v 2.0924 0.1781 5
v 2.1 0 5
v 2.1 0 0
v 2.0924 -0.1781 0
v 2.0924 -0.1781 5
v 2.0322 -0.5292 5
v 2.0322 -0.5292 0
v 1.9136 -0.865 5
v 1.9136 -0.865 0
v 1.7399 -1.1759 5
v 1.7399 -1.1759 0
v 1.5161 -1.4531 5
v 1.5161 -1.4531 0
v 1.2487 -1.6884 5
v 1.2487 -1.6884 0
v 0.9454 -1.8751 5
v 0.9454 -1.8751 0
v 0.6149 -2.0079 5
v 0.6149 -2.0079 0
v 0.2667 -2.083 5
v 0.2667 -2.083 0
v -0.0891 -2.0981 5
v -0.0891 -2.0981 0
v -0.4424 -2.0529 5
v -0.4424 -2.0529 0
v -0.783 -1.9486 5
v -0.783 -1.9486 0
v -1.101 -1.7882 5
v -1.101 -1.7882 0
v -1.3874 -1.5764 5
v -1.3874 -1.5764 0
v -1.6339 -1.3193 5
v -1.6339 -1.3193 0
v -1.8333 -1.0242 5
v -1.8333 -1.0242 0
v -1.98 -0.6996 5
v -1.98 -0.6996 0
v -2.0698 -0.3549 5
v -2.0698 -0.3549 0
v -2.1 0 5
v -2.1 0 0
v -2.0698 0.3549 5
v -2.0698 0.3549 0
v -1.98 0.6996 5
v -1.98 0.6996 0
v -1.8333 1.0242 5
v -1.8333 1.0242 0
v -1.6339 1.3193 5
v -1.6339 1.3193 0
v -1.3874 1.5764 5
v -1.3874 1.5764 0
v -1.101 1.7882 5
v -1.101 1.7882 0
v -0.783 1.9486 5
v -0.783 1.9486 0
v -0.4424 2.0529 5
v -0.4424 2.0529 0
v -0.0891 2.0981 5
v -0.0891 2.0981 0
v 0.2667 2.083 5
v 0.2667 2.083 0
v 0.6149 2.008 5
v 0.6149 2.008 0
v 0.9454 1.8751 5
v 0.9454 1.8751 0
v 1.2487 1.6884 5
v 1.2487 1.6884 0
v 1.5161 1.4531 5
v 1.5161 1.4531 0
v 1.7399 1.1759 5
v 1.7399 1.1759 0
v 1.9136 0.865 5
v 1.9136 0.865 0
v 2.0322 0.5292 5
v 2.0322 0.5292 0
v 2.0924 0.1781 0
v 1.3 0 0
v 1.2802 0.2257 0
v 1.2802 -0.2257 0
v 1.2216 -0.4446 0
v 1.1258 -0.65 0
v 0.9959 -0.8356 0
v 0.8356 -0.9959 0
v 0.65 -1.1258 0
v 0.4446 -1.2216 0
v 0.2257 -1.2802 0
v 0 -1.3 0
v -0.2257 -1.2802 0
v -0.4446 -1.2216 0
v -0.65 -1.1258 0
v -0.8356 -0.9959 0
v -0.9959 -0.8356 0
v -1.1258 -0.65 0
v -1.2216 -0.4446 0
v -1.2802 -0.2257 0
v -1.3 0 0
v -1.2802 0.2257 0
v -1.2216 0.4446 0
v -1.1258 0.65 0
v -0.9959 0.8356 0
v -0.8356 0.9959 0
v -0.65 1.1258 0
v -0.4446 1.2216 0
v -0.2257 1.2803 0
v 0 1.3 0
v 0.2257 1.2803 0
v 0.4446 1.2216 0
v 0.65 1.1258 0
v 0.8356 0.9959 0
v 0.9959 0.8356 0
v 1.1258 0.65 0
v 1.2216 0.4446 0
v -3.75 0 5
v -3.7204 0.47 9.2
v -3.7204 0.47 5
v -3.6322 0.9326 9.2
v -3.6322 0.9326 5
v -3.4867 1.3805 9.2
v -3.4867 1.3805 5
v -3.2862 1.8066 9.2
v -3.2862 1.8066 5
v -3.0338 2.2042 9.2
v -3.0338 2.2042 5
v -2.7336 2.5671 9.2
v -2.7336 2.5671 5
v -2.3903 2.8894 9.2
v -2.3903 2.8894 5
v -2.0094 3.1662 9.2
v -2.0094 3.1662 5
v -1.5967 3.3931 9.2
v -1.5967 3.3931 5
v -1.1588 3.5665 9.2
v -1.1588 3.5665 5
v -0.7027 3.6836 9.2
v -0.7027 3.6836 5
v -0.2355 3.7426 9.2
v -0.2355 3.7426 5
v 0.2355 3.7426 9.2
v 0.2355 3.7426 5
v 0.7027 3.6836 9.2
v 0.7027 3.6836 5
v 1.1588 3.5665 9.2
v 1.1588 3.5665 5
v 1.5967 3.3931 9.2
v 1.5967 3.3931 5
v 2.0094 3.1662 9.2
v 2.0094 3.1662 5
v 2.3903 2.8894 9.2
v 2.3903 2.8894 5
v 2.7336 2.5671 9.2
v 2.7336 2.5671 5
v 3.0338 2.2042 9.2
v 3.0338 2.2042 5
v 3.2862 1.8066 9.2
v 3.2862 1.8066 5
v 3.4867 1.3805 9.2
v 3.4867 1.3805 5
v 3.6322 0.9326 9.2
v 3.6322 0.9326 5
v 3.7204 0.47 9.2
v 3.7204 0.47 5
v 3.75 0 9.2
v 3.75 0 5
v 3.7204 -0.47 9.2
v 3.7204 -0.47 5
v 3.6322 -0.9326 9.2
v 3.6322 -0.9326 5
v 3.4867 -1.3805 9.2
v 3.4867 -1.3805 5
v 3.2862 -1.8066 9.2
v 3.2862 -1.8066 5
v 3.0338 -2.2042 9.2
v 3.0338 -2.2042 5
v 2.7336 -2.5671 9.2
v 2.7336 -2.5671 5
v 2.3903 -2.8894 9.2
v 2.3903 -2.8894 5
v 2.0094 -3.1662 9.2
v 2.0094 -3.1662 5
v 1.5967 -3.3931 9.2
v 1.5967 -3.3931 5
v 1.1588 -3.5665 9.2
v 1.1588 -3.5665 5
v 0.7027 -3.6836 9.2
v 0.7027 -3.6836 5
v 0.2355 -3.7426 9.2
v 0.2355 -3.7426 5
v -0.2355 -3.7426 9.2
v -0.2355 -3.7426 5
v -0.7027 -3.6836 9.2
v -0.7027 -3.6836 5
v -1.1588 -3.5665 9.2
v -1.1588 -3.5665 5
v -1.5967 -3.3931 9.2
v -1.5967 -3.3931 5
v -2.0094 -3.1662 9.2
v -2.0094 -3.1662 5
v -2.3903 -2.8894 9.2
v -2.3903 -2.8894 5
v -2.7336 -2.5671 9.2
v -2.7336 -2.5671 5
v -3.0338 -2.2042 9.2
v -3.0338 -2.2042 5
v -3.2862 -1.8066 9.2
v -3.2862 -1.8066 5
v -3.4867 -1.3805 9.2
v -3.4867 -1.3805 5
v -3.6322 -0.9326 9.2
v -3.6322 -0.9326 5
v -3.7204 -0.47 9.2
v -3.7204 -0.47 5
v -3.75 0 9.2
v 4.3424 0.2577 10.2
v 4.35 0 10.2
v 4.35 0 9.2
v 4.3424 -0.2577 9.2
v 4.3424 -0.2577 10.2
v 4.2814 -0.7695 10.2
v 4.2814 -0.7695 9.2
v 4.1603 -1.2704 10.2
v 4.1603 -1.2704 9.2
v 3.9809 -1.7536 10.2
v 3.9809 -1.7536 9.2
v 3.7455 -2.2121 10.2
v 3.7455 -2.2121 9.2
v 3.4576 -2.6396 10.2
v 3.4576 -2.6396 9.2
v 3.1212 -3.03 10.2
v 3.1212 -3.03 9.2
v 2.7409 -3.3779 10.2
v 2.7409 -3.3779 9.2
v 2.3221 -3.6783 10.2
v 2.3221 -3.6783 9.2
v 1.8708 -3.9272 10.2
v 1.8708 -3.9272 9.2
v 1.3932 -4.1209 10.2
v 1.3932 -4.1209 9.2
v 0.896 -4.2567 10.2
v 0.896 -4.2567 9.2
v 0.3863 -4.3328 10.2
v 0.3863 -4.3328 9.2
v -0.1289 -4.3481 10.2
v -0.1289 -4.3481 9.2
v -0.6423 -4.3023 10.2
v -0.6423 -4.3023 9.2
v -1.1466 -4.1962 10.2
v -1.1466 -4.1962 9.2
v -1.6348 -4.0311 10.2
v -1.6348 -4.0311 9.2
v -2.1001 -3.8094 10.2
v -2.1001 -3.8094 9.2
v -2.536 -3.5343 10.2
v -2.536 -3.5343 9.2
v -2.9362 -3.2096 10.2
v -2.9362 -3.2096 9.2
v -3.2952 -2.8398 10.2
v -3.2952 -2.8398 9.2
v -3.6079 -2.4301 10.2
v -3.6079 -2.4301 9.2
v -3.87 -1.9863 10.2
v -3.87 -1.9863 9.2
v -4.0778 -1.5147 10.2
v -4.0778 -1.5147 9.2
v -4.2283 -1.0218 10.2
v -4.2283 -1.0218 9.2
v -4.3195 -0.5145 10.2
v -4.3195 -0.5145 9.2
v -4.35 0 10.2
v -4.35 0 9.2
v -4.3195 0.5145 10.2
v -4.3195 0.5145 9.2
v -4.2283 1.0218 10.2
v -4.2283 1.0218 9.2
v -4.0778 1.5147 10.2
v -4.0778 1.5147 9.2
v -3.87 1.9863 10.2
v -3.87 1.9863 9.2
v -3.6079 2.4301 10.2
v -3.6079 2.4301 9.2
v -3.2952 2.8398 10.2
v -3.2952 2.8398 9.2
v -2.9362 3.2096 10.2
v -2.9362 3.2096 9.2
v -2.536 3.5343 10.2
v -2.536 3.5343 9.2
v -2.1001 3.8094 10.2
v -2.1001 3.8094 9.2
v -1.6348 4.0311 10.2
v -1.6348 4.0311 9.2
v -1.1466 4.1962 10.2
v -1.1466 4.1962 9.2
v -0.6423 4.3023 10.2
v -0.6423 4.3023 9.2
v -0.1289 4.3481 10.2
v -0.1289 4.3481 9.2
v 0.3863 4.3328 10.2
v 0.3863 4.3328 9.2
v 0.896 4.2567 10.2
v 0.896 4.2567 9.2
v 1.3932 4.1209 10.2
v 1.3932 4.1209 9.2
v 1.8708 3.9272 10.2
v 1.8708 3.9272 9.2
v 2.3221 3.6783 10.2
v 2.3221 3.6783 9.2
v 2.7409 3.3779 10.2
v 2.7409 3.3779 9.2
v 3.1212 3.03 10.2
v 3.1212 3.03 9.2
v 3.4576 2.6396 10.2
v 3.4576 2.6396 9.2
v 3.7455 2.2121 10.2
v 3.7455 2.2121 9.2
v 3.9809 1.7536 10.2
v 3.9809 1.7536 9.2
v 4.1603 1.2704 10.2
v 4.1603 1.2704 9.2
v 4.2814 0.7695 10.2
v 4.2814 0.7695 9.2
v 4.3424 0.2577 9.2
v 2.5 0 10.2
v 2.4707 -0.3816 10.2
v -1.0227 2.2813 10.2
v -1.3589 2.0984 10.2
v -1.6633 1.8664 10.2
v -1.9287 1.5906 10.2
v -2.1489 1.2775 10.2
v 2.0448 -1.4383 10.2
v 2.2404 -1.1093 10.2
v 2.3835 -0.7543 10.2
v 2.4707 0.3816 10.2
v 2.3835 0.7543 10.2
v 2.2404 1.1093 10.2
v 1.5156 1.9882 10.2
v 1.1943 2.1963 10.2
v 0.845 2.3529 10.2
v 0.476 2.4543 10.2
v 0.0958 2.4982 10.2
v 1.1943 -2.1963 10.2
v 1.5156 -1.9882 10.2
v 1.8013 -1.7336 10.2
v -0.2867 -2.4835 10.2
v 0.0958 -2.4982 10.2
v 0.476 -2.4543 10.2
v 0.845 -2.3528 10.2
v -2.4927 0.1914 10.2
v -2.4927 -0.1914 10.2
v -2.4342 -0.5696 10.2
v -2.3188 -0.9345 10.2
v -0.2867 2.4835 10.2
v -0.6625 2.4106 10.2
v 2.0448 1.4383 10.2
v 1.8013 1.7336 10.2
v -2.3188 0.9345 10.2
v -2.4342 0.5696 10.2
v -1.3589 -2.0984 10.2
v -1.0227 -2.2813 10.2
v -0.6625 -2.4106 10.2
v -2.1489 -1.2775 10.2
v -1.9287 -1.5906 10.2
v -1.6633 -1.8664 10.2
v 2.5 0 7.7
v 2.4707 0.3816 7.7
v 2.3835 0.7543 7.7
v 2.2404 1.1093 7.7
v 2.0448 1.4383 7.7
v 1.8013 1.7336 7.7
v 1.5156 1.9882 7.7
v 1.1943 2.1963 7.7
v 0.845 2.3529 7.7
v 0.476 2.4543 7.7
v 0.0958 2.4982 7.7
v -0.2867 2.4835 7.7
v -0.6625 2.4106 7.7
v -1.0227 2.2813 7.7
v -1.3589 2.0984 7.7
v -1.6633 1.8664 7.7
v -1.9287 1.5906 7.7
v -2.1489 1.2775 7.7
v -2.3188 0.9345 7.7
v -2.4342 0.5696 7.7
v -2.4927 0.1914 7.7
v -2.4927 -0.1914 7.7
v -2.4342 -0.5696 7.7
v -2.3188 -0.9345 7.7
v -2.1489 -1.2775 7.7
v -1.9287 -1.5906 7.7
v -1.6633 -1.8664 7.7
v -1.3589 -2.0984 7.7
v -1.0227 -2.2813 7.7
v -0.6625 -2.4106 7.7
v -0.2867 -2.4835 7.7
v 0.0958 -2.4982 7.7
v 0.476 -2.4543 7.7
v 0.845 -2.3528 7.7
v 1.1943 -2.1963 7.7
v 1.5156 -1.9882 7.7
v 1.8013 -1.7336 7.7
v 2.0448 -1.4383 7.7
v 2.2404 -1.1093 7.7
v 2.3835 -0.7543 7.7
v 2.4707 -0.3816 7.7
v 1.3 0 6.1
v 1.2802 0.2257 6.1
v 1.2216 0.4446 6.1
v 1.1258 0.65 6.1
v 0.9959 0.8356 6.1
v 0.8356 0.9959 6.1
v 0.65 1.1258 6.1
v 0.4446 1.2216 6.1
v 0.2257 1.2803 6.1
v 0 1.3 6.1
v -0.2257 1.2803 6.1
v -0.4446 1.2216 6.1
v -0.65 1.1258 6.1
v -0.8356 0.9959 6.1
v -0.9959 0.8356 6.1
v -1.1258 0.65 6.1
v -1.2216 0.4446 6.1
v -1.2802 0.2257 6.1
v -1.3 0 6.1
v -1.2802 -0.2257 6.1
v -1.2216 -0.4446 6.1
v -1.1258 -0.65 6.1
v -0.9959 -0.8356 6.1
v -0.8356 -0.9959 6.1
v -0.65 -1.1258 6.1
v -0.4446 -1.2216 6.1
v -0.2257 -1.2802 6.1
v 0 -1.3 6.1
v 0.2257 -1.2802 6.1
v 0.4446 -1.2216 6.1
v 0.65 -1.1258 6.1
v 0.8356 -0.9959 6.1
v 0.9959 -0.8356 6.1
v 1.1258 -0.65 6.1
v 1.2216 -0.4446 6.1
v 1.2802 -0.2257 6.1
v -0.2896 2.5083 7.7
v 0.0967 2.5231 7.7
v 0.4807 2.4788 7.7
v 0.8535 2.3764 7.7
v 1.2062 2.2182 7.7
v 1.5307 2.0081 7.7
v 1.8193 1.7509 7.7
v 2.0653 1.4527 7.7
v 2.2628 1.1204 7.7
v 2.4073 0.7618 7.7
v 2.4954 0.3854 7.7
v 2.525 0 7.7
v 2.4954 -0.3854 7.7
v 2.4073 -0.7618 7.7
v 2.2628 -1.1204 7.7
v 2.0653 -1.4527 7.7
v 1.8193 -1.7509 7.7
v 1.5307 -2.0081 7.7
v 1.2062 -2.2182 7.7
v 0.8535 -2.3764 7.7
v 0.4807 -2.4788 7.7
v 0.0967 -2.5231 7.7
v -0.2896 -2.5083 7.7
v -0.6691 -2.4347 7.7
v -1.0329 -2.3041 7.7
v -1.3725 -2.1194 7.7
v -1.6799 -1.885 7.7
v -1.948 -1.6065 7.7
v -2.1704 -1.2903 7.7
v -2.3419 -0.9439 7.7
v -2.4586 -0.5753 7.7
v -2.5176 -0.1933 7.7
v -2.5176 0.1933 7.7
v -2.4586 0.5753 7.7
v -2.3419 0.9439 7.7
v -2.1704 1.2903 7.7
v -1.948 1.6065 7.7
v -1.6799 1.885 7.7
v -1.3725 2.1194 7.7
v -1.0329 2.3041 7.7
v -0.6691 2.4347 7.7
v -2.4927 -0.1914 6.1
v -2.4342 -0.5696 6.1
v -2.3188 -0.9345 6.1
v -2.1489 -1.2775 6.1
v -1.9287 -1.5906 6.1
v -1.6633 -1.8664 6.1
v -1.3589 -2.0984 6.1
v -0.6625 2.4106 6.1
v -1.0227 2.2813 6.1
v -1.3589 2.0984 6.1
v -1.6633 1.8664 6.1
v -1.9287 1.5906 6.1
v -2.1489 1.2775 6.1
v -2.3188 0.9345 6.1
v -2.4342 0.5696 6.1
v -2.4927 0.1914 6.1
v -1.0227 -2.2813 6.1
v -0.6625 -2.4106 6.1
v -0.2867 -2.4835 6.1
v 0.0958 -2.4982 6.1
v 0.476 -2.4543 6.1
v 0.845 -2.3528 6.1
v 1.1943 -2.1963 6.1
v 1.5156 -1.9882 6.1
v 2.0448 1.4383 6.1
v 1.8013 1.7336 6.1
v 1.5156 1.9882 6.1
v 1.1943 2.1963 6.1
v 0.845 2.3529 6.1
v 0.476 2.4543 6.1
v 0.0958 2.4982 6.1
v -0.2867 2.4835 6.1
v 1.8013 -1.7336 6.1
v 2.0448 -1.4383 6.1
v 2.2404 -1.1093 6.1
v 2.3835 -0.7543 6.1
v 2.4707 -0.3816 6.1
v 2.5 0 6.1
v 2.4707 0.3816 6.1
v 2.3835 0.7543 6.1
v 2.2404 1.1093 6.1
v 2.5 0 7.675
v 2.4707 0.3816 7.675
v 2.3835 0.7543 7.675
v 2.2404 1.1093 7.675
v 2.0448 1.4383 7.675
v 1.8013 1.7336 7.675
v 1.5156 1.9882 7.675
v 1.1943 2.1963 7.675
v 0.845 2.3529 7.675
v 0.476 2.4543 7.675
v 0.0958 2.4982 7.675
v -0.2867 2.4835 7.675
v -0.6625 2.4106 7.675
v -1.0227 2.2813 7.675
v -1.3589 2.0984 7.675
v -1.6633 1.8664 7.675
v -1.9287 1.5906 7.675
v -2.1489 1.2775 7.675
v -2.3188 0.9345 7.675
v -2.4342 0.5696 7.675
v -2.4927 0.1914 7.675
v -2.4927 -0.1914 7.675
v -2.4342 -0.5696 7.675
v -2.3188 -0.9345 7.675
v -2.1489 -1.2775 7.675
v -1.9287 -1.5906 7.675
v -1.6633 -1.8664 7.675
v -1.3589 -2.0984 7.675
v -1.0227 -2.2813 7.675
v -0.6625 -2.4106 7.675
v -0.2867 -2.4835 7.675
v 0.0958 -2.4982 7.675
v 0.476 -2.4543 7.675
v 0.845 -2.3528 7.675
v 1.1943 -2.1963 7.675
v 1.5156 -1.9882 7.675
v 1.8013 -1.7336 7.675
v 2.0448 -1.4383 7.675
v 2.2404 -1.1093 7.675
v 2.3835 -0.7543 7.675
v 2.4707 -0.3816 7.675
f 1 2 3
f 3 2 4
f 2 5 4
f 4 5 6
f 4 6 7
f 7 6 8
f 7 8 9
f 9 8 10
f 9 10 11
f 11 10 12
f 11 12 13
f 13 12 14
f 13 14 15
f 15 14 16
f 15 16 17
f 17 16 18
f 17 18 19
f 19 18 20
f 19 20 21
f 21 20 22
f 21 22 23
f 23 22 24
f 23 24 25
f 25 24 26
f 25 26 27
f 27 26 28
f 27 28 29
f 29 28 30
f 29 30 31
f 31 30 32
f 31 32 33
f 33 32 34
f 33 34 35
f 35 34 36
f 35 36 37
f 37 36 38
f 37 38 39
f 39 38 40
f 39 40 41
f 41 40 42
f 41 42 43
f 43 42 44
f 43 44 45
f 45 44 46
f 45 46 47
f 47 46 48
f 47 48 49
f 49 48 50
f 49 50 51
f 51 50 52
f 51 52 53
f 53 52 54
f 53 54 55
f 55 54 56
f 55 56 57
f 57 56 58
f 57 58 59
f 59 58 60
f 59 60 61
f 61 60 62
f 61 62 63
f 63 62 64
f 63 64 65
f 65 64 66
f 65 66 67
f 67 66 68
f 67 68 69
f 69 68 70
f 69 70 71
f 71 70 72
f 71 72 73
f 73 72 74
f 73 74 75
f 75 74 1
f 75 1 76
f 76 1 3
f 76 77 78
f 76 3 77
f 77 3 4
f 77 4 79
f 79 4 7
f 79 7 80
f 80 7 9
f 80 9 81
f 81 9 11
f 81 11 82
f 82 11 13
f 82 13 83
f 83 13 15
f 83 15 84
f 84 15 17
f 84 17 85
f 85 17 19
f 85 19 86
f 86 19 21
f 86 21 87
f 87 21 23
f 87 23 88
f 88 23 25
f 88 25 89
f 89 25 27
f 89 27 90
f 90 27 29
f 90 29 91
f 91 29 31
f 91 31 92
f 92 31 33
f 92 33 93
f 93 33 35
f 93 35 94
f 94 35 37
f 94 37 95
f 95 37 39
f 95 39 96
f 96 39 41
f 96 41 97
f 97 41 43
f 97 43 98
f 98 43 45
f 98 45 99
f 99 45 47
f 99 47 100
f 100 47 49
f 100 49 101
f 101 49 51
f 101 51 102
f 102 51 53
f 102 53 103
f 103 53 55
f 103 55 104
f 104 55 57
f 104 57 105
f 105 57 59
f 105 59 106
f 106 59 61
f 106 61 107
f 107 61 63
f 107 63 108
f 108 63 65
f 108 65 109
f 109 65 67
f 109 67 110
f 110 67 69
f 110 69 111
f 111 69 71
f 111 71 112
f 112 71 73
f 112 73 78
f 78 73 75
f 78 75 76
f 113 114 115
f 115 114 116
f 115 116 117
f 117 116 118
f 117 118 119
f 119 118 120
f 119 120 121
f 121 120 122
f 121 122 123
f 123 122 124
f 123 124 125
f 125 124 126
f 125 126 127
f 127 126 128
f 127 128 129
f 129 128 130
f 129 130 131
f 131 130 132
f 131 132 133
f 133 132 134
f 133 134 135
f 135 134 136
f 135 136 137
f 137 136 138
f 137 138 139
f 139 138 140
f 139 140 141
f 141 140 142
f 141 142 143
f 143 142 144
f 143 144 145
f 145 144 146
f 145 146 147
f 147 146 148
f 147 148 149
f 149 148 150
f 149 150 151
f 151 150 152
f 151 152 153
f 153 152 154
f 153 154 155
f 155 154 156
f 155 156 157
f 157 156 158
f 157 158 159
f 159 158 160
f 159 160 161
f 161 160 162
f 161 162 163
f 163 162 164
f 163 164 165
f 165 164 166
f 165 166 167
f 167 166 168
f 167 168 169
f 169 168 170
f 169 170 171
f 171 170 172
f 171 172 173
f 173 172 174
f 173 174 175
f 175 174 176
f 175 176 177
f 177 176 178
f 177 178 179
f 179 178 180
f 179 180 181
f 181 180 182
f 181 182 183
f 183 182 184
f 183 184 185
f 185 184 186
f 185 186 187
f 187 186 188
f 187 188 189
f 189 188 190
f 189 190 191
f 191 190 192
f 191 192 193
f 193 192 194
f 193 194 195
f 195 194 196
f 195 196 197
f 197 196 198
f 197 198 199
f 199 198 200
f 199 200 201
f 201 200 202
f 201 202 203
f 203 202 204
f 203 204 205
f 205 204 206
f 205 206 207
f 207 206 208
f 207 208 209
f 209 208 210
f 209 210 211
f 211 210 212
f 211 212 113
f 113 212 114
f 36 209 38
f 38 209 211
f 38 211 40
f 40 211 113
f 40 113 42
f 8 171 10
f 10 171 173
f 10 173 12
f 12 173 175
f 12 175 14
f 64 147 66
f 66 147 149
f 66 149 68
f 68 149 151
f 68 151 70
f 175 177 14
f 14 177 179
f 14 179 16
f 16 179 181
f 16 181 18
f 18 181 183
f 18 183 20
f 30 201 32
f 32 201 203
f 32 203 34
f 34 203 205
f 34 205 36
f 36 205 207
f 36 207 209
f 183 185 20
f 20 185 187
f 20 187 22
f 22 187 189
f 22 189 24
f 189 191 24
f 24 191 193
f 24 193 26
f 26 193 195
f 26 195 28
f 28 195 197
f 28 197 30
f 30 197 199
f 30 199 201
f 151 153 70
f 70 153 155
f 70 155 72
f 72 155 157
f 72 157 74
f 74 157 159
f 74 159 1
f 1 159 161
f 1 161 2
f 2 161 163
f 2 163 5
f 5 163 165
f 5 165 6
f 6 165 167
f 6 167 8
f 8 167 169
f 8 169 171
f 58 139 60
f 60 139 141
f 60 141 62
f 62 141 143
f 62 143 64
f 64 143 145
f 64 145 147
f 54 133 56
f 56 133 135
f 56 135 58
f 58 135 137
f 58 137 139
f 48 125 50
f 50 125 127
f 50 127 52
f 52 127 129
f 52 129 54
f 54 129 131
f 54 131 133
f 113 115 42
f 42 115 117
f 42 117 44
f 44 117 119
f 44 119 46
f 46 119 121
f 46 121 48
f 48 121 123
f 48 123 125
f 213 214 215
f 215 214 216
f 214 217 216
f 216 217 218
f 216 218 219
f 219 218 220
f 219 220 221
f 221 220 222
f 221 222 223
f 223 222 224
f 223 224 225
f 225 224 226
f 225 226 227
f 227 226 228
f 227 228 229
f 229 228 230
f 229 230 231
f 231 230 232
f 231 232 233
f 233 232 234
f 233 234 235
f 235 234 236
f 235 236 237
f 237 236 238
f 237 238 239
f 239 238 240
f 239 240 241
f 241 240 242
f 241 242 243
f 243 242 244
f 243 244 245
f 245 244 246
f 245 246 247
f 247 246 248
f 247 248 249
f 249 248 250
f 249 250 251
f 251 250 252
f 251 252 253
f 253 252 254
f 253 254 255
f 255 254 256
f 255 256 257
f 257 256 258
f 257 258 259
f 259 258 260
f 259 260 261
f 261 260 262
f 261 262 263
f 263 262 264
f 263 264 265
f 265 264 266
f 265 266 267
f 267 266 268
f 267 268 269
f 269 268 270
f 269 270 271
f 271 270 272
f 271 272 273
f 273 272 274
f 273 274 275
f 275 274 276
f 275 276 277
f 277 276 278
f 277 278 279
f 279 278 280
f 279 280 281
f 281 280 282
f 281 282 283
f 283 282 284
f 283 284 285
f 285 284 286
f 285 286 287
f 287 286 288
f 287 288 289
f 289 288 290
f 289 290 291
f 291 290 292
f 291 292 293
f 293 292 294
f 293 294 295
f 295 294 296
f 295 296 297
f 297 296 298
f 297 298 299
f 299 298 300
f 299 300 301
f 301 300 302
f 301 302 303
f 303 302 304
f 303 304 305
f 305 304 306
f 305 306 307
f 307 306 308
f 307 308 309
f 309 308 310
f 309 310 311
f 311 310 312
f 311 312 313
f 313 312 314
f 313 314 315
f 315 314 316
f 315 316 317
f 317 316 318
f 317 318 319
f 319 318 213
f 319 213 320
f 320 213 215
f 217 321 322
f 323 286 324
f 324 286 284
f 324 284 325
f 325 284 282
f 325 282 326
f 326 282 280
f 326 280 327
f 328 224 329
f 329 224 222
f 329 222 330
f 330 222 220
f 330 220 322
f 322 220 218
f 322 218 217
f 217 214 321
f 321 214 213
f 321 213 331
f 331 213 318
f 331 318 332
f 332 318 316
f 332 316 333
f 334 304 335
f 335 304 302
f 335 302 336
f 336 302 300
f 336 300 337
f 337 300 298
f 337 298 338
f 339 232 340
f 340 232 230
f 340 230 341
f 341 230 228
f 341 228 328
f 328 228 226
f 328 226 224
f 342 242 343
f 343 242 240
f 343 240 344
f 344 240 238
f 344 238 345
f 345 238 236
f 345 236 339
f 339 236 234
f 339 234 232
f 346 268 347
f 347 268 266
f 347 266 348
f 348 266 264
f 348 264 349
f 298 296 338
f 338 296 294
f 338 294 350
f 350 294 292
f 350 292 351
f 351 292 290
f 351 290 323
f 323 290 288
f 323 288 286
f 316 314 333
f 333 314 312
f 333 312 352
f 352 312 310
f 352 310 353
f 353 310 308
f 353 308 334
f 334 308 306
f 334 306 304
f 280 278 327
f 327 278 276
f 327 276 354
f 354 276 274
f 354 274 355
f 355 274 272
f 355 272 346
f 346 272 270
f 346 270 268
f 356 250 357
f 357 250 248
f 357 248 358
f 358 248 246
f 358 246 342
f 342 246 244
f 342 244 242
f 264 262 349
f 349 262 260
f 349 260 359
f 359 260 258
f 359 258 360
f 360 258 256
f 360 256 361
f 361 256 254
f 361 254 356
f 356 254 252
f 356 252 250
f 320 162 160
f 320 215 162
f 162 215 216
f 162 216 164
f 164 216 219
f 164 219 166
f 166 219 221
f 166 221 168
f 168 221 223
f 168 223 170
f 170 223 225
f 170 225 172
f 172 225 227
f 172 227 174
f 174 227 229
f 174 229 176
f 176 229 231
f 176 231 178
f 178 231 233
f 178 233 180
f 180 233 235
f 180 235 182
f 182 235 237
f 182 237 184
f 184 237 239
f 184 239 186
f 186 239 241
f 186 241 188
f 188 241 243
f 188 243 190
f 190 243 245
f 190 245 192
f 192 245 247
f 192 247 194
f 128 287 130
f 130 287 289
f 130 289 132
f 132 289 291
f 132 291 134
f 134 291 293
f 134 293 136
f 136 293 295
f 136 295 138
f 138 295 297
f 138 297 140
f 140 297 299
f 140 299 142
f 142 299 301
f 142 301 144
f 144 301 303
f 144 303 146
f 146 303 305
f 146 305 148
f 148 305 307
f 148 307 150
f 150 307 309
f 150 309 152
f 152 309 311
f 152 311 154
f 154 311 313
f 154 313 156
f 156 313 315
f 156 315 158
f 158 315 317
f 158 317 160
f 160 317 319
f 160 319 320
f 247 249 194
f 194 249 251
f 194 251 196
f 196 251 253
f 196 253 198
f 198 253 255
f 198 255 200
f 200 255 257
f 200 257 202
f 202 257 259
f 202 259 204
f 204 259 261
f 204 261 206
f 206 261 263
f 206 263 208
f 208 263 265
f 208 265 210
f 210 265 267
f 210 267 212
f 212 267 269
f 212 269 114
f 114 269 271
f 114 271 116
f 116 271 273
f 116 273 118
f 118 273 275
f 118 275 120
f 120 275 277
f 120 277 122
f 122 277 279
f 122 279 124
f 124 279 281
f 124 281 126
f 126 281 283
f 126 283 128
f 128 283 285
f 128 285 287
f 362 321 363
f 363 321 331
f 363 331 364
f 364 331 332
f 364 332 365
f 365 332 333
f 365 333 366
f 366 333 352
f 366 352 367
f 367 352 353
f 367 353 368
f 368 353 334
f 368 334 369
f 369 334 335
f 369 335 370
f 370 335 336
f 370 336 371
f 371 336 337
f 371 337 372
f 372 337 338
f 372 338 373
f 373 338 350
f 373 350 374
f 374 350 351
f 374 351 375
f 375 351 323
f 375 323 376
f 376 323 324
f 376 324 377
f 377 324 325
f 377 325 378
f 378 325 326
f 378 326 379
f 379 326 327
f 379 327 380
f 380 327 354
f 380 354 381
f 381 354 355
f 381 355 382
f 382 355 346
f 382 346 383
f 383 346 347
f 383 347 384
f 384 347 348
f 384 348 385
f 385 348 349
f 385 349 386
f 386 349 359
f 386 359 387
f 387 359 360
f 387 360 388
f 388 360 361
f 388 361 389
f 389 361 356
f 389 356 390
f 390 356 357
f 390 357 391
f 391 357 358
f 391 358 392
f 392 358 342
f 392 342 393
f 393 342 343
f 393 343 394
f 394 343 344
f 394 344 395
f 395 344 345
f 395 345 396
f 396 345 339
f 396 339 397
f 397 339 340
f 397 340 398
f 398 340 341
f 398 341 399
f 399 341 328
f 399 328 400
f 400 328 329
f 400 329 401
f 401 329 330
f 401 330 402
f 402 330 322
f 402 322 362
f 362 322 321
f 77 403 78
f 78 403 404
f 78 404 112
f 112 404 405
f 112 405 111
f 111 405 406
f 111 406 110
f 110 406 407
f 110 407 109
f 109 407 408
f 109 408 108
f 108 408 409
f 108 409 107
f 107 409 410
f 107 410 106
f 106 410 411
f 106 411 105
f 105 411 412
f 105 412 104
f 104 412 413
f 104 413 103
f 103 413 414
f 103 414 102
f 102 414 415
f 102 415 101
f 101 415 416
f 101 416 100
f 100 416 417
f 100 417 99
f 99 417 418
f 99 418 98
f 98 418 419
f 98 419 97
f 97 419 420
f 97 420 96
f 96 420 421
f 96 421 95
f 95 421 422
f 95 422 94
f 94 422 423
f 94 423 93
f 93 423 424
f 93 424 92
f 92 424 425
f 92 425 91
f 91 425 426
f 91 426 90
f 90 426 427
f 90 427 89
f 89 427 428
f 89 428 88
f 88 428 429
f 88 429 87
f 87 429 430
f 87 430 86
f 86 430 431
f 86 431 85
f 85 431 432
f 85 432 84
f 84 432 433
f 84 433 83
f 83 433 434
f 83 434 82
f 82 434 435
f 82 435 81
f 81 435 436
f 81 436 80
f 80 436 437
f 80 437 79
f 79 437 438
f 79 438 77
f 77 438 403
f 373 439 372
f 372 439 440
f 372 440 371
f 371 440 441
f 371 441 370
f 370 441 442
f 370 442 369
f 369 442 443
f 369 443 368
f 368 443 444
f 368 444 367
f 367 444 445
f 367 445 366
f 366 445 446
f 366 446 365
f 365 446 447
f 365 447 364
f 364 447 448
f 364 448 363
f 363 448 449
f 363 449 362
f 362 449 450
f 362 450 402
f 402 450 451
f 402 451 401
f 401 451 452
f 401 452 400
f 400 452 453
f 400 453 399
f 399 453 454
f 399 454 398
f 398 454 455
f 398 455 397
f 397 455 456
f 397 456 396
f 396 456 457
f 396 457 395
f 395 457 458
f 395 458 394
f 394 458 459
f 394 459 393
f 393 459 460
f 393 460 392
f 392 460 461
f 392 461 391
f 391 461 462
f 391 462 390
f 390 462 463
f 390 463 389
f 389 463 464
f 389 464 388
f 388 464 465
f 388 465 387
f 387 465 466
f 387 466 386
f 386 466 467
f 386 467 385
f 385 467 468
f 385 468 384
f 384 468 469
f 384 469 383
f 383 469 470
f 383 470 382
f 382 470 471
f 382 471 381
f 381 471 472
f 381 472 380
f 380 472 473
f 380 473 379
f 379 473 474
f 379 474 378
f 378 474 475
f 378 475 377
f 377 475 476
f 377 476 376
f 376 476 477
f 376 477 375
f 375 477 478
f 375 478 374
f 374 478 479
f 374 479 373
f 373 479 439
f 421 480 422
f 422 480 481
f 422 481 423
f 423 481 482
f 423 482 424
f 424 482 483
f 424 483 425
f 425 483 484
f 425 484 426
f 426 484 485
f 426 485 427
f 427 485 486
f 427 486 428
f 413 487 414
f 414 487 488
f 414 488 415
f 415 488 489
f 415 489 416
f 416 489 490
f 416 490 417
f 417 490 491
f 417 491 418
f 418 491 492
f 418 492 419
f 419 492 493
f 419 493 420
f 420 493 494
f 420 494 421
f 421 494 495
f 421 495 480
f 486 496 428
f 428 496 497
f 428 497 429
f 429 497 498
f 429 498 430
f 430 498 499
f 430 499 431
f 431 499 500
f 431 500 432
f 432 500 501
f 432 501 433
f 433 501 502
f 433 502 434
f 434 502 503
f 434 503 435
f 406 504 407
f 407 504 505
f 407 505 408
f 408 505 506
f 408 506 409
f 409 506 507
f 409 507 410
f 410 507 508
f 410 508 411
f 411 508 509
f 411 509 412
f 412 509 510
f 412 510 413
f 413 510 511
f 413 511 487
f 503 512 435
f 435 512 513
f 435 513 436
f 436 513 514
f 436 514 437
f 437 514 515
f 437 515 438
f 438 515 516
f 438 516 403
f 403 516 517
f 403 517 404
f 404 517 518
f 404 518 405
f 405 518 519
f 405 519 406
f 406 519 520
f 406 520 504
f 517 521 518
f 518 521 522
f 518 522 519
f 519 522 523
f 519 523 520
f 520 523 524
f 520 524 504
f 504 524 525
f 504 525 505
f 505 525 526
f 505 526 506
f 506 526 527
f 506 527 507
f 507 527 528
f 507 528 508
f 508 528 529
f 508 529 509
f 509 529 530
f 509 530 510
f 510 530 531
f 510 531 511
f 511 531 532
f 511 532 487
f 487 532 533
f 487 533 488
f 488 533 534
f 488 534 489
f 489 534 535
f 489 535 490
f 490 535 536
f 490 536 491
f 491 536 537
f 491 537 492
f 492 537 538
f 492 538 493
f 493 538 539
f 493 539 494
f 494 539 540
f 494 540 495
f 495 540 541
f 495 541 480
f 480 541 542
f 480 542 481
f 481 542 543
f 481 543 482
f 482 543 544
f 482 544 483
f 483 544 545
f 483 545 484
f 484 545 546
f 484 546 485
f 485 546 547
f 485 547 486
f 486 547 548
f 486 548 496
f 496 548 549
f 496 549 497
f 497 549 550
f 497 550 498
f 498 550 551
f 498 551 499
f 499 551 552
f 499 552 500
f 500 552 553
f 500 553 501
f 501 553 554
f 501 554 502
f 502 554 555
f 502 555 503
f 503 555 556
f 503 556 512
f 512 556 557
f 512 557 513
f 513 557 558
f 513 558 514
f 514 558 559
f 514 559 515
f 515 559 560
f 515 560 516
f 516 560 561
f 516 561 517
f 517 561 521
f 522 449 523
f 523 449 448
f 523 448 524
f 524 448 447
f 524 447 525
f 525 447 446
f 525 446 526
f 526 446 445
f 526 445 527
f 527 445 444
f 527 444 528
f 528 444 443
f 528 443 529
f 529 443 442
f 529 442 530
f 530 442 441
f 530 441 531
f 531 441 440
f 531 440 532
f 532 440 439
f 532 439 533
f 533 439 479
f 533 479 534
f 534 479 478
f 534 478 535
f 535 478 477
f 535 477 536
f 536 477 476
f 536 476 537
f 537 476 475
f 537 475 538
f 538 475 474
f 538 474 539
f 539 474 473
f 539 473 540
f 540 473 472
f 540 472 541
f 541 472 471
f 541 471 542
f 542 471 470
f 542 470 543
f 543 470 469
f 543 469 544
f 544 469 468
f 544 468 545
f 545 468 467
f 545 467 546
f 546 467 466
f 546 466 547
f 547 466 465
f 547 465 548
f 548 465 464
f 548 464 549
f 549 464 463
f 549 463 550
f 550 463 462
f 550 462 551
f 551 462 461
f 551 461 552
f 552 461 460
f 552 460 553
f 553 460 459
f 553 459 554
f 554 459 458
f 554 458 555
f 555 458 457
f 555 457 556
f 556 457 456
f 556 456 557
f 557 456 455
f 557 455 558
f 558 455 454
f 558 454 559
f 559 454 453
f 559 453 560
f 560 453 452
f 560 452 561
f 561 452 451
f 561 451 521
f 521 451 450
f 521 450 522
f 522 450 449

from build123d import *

# Parameters (mm, degrees)
SKETCH_1_R          = 2.1
EXTRUDE_1_DEPTH     = 5
SKETCH_2_R          = 3.75
EXTRUDE_2_DEPTH     = 4.2
SKETCH_3_R          = 4.35
EXTRUDE_3_DEPTH     = 1
SKETCH_9_R          = 2.5
CUT_EXTRUDE_1_DEPTH = 2.5


with BuildPart() as part:
    # 스케치1 → 보스-돌출1 (new body)
    with BuildSketch(Plane.XY):
        Circle(SKETCH_1_R)
    extrude(amount=EXTRUDE_1_DEPTH)

    # 스케치2 → 보스-돌출2 (add)
    with BuildSketch(Plane.XY.offset(5)):
        Circle(SKETCH_2_R)
    extrude(amount=EXTRUDE_2_DEPTH)

    # 스케치3 → 보스-돌출3 (add)
    with BuildSketch(Plane.XY.offset(9.2)):
        Circle(SKETCH_3_R)
    extrude(amount=EXTRUDE_3_DEPTH)

    # 스케치9 → 컷-돌출1 (cut)
    with BuildSketch(Plane.XY.offset(10.2)):
        Circle(SKETCH_9_R)
    extrude(amount=-CUT_EXTRUDE_1_DEPTH, mode=Mode.SUBTRACT)

    # 스케치13 → M2 남비 머리 나사용 카운터보어2 (revolve, cut)
    with BuildSketch(Plane(origin=(0, 0, 7.7), x_dir=(0, -1, 0), z_dir=(1, 0, 0))):
        Polygon((0, 0), (0, 8.781118805), (1.3, 8), (1.3, 1.6), (2.5, 1.6), (2.5, 0.025), (2.525, 0), align=None)
    revolve(axis=Axis((0, 0, 14.05), (0, 0, -1)), mode=Mode.SUBTRACT)


solid = part.part
